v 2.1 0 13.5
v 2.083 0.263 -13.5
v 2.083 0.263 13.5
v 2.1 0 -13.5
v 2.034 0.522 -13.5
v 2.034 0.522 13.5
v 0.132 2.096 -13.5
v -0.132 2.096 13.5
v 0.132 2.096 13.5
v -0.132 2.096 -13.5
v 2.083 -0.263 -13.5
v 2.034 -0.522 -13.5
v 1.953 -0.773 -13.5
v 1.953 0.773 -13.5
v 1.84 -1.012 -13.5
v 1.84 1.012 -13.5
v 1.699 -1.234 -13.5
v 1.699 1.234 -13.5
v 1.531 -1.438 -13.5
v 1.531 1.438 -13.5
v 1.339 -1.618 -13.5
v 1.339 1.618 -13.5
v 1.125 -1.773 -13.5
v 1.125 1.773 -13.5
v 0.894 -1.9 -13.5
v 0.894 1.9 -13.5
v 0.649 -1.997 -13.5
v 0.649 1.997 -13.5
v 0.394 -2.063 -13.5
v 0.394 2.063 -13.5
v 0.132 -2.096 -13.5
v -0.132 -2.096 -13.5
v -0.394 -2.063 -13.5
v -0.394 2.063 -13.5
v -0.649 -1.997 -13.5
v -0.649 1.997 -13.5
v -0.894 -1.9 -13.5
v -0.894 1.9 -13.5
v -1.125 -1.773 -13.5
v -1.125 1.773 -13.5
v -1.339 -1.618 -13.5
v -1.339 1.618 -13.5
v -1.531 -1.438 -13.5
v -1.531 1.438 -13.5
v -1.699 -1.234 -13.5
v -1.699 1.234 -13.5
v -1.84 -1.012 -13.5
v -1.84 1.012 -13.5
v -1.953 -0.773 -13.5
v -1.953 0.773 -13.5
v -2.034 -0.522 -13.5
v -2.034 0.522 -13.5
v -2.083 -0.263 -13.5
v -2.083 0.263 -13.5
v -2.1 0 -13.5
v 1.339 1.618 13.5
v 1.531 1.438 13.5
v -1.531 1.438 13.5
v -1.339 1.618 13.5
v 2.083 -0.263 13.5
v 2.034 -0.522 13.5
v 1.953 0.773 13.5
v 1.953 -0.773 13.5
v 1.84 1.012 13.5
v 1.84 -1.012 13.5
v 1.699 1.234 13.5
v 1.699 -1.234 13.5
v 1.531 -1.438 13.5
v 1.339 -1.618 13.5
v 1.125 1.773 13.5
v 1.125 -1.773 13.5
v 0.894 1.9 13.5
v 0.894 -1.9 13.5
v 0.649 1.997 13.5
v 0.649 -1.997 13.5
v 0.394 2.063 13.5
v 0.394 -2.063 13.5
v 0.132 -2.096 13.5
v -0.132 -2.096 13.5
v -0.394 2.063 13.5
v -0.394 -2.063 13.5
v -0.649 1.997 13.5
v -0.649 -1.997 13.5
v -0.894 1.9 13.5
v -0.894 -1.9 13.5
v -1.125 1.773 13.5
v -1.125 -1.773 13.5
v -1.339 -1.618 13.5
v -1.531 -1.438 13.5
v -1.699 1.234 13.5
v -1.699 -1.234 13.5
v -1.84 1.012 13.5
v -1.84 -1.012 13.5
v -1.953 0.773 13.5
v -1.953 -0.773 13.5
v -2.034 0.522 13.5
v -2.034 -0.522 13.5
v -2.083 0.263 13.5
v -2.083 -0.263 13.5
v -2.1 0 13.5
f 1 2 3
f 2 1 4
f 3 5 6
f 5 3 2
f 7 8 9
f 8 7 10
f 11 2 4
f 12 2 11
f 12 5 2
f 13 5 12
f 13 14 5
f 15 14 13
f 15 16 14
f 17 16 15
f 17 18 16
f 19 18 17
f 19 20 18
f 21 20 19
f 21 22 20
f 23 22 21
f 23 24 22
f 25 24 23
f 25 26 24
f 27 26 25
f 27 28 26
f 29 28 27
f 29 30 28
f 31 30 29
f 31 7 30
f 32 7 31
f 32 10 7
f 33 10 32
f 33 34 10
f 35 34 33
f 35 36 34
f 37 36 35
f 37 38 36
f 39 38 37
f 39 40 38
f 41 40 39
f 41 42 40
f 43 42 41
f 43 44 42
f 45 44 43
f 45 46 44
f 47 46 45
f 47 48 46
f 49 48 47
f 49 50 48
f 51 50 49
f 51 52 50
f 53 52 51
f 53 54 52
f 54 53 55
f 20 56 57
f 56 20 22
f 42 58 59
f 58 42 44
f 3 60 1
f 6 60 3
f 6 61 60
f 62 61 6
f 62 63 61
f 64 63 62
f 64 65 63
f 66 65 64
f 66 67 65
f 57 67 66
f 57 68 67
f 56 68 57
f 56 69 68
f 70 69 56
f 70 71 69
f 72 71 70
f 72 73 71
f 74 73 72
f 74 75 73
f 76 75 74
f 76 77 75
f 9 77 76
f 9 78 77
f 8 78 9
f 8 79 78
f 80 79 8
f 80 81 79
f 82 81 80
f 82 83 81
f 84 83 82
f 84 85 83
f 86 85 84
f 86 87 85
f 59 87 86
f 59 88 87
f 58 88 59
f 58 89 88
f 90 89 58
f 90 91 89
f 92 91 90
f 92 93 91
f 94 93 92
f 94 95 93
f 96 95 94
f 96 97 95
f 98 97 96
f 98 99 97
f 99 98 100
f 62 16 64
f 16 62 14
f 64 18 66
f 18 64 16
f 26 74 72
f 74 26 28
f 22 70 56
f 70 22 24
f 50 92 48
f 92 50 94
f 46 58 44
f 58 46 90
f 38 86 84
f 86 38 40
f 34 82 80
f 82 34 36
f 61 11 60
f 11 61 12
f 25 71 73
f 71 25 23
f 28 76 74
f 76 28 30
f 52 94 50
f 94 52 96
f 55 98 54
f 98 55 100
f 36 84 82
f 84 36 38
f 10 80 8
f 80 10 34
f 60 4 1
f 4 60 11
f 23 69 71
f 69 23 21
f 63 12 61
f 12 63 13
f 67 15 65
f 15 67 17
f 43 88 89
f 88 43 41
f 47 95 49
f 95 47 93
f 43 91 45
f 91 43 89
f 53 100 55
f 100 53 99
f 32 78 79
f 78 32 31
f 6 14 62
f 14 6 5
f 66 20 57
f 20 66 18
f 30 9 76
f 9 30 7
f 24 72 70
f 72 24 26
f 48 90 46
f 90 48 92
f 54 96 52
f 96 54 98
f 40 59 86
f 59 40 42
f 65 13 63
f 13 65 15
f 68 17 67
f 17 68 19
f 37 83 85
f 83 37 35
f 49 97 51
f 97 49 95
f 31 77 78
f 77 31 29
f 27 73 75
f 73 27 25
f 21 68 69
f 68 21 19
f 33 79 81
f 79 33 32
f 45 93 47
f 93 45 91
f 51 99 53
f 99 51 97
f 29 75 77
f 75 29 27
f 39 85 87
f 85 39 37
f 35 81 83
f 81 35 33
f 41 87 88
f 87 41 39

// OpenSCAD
$fn = 50;


difference() {
	union() {
		translate(v = [0, 0, -13.5000000000]) {
			cylinder(h = 27, r = 2.1000000000);
		}
	}
	union() {
		translate(v = [0, 0, -100.0000000000]) {
			cylinder(h = 200, r = 0);
		}
	}
}
